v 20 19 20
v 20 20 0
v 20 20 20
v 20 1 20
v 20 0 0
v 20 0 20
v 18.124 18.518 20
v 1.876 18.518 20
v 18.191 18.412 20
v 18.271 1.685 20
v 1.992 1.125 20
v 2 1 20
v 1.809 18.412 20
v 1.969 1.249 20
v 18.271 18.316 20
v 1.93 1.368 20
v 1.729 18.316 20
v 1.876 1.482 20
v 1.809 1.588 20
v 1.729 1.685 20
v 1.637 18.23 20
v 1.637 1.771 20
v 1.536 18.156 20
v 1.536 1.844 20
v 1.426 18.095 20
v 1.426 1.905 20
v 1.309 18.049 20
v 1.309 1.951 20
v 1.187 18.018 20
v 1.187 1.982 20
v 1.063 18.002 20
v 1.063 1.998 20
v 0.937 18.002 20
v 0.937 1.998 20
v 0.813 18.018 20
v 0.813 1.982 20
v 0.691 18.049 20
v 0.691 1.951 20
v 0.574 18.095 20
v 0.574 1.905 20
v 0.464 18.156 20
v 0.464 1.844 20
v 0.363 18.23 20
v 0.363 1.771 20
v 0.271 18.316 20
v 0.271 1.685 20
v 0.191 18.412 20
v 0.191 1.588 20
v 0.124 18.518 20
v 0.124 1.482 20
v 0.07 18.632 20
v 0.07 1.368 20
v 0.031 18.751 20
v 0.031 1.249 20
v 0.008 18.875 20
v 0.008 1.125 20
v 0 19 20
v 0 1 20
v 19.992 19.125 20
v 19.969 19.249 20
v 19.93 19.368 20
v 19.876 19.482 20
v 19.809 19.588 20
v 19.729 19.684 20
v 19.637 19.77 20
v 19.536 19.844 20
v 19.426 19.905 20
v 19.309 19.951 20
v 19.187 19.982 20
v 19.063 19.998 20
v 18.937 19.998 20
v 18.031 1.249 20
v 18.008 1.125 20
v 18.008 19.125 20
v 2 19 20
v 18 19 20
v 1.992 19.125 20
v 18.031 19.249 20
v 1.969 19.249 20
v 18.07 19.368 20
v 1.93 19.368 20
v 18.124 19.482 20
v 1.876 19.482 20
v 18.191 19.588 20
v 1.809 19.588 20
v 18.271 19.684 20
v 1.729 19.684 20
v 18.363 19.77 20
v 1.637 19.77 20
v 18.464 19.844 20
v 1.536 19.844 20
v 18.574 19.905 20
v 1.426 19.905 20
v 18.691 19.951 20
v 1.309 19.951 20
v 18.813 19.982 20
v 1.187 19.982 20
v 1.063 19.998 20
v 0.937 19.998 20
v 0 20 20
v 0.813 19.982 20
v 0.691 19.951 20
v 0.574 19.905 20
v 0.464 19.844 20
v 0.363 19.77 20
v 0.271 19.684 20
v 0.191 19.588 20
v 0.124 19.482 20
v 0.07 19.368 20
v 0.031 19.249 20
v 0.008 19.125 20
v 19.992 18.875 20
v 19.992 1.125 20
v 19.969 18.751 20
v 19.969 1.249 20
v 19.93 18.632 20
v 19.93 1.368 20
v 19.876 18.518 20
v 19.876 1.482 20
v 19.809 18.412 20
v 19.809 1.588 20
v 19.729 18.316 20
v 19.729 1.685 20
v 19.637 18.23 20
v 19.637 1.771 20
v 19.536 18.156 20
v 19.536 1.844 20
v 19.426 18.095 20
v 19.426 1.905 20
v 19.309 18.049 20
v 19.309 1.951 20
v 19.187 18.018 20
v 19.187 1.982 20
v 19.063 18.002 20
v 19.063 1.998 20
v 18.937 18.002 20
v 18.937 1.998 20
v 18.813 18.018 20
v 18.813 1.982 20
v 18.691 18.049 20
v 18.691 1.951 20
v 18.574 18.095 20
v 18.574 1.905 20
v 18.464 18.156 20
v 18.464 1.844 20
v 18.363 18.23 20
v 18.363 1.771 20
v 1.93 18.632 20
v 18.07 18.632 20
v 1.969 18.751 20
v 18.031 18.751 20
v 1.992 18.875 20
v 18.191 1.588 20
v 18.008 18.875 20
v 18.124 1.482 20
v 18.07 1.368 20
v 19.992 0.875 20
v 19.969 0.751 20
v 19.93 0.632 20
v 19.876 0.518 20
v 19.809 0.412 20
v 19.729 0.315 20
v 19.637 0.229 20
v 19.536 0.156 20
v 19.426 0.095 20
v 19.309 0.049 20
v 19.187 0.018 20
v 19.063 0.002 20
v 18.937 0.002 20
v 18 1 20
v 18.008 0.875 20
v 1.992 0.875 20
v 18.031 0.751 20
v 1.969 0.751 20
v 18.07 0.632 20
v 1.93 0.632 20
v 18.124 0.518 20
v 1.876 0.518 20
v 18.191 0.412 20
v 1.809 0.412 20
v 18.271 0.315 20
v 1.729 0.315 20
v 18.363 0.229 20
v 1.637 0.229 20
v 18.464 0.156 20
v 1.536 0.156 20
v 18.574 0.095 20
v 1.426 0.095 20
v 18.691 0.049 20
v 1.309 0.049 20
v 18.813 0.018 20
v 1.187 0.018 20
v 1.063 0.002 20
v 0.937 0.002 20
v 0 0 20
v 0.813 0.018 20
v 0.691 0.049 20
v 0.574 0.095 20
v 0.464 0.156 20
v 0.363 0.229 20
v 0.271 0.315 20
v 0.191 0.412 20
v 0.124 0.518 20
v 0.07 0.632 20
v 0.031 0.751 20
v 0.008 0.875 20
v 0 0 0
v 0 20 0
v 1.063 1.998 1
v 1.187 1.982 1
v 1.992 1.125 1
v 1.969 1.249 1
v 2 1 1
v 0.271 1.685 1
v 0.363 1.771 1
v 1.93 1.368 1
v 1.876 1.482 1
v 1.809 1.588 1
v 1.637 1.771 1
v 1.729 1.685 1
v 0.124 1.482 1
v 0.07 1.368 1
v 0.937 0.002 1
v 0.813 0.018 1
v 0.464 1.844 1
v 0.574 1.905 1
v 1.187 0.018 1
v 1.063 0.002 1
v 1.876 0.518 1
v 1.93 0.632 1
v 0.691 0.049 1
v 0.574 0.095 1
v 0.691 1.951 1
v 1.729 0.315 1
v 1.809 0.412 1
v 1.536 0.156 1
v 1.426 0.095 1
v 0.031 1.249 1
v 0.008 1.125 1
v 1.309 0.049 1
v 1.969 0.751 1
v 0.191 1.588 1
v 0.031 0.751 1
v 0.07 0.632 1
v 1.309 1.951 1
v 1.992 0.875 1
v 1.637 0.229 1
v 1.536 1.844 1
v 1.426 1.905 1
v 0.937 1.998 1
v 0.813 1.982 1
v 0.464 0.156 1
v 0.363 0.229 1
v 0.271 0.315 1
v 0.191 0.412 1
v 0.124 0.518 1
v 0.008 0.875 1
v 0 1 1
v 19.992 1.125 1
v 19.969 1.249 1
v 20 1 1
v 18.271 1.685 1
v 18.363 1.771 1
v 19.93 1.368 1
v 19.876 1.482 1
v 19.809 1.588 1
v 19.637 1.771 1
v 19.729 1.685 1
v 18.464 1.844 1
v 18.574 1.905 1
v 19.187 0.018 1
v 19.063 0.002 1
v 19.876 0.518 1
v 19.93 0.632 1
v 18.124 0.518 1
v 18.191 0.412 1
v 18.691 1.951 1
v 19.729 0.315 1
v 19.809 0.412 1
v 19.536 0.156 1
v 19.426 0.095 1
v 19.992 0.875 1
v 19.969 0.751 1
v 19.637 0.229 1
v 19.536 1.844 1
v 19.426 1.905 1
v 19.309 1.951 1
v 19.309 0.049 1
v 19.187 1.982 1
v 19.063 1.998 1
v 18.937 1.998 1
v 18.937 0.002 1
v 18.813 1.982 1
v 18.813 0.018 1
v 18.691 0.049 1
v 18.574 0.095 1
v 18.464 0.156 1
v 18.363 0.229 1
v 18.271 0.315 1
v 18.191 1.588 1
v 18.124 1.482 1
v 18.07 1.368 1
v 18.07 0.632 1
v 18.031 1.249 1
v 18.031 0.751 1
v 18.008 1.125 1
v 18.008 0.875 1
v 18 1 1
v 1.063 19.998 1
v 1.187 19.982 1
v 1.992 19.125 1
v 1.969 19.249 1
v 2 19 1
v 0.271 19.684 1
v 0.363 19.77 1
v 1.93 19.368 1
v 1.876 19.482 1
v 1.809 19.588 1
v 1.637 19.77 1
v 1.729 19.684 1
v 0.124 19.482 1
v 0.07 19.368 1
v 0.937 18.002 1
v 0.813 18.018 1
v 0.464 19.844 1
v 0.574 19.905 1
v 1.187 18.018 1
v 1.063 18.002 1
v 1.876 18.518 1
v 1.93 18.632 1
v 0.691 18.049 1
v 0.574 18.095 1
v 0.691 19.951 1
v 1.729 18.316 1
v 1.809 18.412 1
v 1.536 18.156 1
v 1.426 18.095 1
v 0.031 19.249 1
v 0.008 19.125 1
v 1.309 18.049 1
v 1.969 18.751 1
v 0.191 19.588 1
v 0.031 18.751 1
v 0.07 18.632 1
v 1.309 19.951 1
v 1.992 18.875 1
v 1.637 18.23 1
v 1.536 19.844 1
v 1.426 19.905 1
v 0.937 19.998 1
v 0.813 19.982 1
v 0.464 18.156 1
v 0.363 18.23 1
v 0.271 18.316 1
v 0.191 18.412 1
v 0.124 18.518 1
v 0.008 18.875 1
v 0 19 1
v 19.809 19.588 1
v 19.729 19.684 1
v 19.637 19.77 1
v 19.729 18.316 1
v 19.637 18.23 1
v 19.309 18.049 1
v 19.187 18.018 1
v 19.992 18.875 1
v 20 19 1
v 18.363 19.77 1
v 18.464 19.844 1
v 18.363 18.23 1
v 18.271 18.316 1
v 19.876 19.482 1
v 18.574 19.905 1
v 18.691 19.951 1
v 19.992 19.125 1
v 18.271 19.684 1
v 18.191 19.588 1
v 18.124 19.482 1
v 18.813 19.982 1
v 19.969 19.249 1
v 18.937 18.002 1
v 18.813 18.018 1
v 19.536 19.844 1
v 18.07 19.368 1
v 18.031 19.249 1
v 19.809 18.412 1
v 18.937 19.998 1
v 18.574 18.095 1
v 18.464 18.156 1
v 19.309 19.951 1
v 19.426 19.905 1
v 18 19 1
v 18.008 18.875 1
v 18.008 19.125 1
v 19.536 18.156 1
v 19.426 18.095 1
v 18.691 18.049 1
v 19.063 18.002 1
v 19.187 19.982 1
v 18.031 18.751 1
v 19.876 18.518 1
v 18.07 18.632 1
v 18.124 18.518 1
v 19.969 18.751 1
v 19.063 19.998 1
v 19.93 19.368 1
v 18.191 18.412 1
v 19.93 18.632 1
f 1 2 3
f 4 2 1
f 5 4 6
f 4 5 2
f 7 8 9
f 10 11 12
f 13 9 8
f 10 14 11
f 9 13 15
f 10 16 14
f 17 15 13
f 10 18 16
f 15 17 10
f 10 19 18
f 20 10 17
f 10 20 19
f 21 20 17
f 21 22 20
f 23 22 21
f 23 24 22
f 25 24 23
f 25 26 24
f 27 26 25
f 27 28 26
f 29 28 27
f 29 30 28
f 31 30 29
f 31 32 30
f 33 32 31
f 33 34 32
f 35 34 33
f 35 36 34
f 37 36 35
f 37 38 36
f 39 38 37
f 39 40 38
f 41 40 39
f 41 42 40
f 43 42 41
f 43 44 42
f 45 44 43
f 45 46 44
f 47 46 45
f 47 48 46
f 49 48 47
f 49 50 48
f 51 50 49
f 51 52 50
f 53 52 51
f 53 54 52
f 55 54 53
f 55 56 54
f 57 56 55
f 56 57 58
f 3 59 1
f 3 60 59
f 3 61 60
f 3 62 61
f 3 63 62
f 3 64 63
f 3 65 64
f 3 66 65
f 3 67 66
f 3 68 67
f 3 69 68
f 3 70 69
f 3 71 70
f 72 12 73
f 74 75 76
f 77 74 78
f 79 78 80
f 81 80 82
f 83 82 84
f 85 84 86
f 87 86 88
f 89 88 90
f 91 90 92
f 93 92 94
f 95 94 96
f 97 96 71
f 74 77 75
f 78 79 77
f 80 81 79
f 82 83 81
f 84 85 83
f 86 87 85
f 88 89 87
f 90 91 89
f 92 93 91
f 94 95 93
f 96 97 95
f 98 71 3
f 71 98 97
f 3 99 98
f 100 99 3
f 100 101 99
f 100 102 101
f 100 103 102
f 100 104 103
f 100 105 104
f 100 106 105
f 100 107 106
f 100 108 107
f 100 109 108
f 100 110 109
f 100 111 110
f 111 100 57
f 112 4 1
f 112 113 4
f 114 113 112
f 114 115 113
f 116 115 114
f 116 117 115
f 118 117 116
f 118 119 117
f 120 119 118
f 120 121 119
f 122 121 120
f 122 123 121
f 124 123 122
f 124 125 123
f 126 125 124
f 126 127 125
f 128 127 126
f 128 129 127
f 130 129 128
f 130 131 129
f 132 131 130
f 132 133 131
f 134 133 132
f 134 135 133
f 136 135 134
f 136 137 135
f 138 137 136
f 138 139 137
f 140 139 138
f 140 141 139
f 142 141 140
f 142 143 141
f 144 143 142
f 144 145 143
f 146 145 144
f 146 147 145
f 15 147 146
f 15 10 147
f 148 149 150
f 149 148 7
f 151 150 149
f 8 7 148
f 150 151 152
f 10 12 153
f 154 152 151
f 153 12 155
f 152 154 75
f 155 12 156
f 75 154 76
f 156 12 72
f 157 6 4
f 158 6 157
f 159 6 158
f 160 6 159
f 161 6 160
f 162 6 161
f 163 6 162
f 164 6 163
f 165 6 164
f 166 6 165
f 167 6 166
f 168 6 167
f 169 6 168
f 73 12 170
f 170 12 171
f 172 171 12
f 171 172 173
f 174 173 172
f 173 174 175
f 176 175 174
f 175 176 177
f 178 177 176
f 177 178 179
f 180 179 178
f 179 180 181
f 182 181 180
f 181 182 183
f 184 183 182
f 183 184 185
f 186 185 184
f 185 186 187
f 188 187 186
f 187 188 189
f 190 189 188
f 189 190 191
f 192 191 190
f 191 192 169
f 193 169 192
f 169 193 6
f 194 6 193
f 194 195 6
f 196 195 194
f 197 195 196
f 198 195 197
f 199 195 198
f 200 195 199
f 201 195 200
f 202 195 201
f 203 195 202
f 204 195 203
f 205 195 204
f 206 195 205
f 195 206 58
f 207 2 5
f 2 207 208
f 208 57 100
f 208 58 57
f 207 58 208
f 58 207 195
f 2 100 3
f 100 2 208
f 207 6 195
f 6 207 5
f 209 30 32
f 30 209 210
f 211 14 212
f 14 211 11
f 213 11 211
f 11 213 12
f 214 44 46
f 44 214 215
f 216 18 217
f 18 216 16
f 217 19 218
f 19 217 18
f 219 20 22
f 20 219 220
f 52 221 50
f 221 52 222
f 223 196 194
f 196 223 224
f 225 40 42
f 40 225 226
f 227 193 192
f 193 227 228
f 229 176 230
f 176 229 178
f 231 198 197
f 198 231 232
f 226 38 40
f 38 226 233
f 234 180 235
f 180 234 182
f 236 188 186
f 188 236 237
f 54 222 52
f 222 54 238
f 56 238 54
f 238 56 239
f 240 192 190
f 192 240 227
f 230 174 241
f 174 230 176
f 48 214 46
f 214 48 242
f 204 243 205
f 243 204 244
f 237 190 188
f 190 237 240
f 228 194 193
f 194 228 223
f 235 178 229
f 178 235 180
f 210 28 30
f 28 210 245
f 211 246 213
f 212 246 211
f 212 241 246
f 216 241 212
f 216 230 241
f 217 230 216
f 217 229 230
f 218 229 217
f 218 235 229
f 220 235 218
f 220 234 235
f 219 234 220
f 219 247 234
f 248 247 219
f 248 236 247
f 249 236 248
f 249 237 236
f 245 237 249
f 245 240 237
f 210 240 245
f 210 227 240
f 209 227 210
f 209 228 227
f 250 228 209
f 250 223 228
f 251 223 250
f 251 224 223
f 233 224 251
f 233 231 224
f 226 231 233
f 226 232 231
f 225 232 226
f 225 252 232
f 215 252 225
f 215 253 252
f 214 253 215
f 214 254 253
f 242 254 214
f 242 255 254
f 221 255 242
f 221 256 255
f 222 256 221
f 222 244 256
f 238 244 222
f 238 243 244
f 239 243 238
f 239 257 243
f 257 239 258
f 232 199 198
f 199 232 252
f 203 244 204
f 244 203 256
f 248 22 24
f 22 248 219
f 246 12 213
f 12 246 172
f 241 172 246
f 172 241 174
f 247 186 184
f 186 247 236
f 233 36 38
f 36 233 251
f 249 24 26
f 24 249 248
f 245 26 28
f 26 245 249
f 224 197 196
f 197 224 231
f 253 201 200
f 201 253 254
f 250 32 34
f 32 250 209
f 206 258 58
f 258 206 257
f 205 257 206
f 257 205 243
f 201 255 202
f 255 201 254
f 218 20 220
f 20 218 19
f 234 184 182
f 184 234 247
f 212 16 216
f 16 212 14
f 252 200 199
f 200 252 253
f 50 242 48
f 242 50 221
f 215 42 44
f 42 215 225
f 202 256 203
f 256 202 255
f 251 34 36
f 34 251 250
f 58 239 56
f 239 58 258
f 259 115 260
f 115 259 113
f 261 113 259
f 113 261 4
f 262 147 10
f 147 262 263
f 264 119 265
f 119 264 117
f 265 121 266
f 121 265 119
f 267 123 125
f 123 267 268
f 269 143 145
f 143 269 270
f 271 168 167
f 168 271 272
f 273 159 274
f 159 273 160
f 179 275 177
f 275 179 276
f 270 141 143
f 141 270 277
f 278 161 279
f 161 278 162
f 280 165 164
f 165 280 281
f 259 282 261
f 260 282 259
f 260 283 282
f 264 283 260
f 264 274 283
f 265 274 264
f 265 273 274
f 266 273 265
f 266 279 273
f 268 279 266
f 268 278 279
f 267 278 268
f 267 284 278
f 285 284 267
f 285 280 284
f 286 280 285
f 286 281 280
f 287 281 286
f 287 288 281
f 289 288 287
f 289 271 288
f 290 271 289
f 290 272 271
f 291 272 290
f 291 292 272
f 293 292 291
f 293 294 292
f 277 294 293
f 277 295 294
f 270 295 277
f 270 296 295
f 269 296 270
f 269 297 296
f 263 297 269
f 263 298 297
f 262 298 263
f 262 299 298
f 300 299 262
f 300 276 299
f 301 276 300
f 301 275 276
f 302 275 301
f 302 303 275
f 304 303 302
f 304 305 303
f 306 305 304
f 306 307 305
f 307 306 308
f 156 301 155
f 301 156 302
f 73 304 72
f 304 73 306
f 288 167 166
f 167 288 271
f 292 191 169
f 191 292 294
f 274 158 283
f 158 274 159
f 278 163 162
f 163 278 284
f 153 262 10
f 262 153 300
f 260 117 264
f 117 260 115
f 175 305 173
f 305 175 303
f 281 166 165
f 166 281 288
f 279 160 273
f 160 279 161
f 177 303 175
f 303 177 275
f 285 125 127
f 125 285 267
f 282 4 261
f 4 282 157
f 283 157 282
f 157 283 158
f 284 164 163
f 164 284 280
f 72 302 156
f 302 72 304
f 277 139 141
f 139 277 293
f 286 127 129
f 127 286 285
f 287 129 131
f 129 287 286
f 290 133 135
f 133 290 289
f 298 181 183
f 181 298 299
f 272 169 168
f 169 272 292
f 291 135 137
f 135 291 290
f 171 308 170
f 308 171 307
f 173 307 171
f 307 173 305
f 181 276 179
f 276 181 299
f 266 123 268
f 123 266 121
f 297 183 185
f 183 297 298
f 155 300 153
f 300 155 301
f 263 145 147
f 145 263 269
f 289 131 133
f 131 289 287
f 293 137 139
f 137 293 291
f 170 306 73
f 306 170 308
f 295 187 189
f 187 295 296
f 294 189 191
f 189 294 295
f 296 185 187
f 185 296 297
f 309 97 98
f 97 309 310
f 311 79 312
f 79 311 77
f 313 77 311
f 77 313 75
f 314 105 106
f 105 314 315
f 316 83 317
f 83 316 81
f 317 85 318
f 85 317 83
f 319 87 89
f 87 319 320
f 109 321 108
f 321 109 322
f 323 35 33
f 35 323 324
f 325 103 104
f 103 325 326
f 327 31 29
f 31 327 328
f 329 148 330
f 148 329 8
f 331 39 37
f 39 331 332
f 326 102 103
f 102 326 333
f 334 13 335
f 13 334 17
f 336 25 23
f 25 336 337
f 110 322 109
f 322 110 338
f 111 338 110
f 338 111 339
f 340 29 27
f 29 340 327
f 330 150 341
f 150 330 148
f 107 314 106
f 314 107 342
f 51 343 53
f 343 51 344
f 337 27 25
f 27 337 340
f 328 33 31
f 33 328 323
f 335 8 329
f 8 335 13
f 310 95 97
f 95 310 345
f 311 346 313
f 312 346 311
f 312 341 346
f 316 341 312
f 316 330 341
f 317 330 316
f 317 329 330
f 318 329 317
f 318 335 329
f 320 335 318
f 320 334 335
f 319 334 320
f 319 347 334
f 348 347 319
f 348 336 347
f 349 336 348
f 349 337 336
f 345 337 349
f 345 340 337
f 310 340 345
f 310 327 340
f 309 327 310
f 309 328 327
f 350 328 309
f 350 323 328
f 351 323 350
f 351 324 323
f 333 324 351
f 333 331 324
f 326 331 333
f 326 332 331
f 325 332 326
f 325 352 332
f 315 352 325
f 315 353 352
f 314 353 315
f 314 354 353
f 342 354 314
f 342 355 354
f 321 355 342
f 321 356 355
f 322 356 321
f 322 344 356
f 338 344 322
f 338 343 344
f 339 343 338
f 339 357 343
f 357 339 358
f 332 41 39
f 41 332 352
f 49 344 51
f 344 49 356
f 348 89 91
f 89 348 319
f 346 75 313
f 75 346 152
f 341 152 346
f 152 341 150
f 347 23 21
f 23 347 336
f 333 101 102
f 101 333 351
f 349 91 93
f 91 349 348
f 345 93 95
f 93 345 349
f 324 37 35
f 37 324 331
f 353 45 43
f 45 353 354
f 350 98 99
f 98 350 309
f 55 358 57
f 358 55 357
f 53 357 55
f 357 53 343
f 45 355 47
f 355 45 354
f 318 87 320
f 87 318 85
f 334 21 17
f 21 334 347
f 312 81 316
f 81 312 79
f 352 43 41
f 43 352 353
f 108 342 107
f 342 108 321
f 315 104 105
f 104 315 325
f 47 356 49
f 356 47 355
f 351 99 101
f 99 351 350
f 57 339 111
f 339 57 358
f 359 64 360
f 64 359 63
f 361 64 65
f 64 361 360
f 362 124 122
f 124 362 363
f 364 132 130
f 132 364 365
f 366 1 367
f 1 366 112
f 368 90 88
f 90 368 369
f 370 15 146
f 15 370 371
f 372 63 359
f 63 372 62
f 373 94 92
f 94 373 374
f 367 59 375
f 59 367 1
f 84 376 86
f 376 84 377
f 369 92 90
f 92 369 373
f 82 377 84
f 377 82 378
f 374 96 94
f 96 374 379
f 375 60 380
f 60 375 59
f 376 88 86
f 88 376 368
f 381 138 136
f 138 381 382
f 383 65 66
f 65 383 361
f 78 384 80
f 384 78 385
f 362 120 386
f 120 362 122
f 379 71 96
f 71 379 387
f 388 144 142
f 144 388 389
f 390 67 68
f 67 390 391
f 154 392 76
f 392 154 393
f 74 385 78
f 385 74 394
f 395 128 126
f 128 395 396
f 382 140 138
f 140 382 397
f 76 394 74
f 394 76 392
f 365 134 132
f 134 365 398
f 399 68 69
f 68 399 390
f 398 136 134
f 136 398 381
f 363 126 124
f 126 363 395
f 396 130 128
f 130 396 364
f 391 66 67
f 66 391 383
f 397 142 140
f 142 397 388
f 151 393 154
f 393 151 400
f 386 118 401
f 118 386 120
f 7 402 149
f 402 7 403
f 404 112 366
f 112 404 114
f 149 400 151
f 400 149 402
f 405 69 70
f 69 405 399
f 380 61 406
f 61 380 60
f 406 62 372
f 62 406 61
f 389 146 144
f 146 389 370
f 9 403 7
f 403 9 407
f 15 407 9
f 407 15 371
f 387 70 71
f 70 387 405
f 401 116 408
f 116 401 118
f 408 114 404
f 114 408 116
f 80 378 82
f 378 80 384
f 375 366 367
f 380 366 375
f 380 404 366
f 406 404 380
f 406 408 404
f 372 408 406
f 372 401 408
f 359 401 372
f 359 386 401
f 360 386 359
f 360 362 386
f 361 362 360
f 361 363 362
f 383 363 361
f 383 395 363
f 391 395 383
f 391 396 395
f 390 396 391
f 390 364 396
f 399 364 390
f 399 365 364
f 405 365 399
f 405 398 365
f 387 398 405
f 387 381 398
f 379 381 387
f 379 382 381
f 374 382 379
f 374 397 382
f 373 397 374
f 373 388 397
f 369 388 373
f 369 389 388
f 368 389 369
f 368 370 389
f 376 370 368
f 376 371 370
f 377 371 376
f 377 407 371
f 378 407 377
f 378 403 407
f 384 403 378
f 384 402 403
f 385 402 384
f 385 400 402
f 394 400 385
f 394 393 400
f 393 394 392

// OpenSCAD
// Puzzle Cube in OpenSCAD

// Parameters
cube_size = 20;
wall_thickness = 1.5;
rounding_radius = 1;
hole_diameter = 4;
hole_height = 1.5;
hole_offset_x = cube_size * 0.2;
hole_offset_y = cube_size * 0.2;

// Main cube
module puzzle_cube() {
  difference() {
    cube([cube_size, cube_size, cube_size]);
    translate([rounding_radius, rounding_radius, rounding_radius])
    cylinder(h = cube_size, r = rounding_radius, $fn = 50);
    translate([cube_size - rounding_radius, rounding_radius, rounding_radius])
    cylinder(h = cube_size, r = rounding_radius, $fn = 50);
    translate([rounding_radius, cube_size - rounding_radius, rounding_radius])
    cylinder(h = cube_size, r = rounding_radius, $fn = 50);
    translate([cube_size - rounding_radius, cube_size - rounding_radius, rounding_radius])
    cylinder(h = cube_size, r = rounding_radius, $fn = 50);
  }
}

// Holes
module holes() {
  translate([hole_offset_x, hole_offset_y, -0.1]) {
    cylinder(h = hole_height, r = hole_diameter / 2, $fn = 50);
  }
  translate([cube_size - hole_offset_x, cube_size - hole_offset_y, -0.1]) {
    cylinder(h = hole_height, r = hole_diameter / 2, $fn = 50);
  }
  translate([hole_offset_x, cube_size - hole_offset_y, -0.1]) {
    cylinder(h = hole_height, r = hole_diameter / 2, $fn = 50);
  }
  translate([cube_size - hole_offset_x, cube_size - hole_offset_y, -0.1]) {
    cylinder(h = hole_height, r = hole_diameter / 2, $fn = 50);
  }
}

// Render the puzzle cube
puzzle_cube();
